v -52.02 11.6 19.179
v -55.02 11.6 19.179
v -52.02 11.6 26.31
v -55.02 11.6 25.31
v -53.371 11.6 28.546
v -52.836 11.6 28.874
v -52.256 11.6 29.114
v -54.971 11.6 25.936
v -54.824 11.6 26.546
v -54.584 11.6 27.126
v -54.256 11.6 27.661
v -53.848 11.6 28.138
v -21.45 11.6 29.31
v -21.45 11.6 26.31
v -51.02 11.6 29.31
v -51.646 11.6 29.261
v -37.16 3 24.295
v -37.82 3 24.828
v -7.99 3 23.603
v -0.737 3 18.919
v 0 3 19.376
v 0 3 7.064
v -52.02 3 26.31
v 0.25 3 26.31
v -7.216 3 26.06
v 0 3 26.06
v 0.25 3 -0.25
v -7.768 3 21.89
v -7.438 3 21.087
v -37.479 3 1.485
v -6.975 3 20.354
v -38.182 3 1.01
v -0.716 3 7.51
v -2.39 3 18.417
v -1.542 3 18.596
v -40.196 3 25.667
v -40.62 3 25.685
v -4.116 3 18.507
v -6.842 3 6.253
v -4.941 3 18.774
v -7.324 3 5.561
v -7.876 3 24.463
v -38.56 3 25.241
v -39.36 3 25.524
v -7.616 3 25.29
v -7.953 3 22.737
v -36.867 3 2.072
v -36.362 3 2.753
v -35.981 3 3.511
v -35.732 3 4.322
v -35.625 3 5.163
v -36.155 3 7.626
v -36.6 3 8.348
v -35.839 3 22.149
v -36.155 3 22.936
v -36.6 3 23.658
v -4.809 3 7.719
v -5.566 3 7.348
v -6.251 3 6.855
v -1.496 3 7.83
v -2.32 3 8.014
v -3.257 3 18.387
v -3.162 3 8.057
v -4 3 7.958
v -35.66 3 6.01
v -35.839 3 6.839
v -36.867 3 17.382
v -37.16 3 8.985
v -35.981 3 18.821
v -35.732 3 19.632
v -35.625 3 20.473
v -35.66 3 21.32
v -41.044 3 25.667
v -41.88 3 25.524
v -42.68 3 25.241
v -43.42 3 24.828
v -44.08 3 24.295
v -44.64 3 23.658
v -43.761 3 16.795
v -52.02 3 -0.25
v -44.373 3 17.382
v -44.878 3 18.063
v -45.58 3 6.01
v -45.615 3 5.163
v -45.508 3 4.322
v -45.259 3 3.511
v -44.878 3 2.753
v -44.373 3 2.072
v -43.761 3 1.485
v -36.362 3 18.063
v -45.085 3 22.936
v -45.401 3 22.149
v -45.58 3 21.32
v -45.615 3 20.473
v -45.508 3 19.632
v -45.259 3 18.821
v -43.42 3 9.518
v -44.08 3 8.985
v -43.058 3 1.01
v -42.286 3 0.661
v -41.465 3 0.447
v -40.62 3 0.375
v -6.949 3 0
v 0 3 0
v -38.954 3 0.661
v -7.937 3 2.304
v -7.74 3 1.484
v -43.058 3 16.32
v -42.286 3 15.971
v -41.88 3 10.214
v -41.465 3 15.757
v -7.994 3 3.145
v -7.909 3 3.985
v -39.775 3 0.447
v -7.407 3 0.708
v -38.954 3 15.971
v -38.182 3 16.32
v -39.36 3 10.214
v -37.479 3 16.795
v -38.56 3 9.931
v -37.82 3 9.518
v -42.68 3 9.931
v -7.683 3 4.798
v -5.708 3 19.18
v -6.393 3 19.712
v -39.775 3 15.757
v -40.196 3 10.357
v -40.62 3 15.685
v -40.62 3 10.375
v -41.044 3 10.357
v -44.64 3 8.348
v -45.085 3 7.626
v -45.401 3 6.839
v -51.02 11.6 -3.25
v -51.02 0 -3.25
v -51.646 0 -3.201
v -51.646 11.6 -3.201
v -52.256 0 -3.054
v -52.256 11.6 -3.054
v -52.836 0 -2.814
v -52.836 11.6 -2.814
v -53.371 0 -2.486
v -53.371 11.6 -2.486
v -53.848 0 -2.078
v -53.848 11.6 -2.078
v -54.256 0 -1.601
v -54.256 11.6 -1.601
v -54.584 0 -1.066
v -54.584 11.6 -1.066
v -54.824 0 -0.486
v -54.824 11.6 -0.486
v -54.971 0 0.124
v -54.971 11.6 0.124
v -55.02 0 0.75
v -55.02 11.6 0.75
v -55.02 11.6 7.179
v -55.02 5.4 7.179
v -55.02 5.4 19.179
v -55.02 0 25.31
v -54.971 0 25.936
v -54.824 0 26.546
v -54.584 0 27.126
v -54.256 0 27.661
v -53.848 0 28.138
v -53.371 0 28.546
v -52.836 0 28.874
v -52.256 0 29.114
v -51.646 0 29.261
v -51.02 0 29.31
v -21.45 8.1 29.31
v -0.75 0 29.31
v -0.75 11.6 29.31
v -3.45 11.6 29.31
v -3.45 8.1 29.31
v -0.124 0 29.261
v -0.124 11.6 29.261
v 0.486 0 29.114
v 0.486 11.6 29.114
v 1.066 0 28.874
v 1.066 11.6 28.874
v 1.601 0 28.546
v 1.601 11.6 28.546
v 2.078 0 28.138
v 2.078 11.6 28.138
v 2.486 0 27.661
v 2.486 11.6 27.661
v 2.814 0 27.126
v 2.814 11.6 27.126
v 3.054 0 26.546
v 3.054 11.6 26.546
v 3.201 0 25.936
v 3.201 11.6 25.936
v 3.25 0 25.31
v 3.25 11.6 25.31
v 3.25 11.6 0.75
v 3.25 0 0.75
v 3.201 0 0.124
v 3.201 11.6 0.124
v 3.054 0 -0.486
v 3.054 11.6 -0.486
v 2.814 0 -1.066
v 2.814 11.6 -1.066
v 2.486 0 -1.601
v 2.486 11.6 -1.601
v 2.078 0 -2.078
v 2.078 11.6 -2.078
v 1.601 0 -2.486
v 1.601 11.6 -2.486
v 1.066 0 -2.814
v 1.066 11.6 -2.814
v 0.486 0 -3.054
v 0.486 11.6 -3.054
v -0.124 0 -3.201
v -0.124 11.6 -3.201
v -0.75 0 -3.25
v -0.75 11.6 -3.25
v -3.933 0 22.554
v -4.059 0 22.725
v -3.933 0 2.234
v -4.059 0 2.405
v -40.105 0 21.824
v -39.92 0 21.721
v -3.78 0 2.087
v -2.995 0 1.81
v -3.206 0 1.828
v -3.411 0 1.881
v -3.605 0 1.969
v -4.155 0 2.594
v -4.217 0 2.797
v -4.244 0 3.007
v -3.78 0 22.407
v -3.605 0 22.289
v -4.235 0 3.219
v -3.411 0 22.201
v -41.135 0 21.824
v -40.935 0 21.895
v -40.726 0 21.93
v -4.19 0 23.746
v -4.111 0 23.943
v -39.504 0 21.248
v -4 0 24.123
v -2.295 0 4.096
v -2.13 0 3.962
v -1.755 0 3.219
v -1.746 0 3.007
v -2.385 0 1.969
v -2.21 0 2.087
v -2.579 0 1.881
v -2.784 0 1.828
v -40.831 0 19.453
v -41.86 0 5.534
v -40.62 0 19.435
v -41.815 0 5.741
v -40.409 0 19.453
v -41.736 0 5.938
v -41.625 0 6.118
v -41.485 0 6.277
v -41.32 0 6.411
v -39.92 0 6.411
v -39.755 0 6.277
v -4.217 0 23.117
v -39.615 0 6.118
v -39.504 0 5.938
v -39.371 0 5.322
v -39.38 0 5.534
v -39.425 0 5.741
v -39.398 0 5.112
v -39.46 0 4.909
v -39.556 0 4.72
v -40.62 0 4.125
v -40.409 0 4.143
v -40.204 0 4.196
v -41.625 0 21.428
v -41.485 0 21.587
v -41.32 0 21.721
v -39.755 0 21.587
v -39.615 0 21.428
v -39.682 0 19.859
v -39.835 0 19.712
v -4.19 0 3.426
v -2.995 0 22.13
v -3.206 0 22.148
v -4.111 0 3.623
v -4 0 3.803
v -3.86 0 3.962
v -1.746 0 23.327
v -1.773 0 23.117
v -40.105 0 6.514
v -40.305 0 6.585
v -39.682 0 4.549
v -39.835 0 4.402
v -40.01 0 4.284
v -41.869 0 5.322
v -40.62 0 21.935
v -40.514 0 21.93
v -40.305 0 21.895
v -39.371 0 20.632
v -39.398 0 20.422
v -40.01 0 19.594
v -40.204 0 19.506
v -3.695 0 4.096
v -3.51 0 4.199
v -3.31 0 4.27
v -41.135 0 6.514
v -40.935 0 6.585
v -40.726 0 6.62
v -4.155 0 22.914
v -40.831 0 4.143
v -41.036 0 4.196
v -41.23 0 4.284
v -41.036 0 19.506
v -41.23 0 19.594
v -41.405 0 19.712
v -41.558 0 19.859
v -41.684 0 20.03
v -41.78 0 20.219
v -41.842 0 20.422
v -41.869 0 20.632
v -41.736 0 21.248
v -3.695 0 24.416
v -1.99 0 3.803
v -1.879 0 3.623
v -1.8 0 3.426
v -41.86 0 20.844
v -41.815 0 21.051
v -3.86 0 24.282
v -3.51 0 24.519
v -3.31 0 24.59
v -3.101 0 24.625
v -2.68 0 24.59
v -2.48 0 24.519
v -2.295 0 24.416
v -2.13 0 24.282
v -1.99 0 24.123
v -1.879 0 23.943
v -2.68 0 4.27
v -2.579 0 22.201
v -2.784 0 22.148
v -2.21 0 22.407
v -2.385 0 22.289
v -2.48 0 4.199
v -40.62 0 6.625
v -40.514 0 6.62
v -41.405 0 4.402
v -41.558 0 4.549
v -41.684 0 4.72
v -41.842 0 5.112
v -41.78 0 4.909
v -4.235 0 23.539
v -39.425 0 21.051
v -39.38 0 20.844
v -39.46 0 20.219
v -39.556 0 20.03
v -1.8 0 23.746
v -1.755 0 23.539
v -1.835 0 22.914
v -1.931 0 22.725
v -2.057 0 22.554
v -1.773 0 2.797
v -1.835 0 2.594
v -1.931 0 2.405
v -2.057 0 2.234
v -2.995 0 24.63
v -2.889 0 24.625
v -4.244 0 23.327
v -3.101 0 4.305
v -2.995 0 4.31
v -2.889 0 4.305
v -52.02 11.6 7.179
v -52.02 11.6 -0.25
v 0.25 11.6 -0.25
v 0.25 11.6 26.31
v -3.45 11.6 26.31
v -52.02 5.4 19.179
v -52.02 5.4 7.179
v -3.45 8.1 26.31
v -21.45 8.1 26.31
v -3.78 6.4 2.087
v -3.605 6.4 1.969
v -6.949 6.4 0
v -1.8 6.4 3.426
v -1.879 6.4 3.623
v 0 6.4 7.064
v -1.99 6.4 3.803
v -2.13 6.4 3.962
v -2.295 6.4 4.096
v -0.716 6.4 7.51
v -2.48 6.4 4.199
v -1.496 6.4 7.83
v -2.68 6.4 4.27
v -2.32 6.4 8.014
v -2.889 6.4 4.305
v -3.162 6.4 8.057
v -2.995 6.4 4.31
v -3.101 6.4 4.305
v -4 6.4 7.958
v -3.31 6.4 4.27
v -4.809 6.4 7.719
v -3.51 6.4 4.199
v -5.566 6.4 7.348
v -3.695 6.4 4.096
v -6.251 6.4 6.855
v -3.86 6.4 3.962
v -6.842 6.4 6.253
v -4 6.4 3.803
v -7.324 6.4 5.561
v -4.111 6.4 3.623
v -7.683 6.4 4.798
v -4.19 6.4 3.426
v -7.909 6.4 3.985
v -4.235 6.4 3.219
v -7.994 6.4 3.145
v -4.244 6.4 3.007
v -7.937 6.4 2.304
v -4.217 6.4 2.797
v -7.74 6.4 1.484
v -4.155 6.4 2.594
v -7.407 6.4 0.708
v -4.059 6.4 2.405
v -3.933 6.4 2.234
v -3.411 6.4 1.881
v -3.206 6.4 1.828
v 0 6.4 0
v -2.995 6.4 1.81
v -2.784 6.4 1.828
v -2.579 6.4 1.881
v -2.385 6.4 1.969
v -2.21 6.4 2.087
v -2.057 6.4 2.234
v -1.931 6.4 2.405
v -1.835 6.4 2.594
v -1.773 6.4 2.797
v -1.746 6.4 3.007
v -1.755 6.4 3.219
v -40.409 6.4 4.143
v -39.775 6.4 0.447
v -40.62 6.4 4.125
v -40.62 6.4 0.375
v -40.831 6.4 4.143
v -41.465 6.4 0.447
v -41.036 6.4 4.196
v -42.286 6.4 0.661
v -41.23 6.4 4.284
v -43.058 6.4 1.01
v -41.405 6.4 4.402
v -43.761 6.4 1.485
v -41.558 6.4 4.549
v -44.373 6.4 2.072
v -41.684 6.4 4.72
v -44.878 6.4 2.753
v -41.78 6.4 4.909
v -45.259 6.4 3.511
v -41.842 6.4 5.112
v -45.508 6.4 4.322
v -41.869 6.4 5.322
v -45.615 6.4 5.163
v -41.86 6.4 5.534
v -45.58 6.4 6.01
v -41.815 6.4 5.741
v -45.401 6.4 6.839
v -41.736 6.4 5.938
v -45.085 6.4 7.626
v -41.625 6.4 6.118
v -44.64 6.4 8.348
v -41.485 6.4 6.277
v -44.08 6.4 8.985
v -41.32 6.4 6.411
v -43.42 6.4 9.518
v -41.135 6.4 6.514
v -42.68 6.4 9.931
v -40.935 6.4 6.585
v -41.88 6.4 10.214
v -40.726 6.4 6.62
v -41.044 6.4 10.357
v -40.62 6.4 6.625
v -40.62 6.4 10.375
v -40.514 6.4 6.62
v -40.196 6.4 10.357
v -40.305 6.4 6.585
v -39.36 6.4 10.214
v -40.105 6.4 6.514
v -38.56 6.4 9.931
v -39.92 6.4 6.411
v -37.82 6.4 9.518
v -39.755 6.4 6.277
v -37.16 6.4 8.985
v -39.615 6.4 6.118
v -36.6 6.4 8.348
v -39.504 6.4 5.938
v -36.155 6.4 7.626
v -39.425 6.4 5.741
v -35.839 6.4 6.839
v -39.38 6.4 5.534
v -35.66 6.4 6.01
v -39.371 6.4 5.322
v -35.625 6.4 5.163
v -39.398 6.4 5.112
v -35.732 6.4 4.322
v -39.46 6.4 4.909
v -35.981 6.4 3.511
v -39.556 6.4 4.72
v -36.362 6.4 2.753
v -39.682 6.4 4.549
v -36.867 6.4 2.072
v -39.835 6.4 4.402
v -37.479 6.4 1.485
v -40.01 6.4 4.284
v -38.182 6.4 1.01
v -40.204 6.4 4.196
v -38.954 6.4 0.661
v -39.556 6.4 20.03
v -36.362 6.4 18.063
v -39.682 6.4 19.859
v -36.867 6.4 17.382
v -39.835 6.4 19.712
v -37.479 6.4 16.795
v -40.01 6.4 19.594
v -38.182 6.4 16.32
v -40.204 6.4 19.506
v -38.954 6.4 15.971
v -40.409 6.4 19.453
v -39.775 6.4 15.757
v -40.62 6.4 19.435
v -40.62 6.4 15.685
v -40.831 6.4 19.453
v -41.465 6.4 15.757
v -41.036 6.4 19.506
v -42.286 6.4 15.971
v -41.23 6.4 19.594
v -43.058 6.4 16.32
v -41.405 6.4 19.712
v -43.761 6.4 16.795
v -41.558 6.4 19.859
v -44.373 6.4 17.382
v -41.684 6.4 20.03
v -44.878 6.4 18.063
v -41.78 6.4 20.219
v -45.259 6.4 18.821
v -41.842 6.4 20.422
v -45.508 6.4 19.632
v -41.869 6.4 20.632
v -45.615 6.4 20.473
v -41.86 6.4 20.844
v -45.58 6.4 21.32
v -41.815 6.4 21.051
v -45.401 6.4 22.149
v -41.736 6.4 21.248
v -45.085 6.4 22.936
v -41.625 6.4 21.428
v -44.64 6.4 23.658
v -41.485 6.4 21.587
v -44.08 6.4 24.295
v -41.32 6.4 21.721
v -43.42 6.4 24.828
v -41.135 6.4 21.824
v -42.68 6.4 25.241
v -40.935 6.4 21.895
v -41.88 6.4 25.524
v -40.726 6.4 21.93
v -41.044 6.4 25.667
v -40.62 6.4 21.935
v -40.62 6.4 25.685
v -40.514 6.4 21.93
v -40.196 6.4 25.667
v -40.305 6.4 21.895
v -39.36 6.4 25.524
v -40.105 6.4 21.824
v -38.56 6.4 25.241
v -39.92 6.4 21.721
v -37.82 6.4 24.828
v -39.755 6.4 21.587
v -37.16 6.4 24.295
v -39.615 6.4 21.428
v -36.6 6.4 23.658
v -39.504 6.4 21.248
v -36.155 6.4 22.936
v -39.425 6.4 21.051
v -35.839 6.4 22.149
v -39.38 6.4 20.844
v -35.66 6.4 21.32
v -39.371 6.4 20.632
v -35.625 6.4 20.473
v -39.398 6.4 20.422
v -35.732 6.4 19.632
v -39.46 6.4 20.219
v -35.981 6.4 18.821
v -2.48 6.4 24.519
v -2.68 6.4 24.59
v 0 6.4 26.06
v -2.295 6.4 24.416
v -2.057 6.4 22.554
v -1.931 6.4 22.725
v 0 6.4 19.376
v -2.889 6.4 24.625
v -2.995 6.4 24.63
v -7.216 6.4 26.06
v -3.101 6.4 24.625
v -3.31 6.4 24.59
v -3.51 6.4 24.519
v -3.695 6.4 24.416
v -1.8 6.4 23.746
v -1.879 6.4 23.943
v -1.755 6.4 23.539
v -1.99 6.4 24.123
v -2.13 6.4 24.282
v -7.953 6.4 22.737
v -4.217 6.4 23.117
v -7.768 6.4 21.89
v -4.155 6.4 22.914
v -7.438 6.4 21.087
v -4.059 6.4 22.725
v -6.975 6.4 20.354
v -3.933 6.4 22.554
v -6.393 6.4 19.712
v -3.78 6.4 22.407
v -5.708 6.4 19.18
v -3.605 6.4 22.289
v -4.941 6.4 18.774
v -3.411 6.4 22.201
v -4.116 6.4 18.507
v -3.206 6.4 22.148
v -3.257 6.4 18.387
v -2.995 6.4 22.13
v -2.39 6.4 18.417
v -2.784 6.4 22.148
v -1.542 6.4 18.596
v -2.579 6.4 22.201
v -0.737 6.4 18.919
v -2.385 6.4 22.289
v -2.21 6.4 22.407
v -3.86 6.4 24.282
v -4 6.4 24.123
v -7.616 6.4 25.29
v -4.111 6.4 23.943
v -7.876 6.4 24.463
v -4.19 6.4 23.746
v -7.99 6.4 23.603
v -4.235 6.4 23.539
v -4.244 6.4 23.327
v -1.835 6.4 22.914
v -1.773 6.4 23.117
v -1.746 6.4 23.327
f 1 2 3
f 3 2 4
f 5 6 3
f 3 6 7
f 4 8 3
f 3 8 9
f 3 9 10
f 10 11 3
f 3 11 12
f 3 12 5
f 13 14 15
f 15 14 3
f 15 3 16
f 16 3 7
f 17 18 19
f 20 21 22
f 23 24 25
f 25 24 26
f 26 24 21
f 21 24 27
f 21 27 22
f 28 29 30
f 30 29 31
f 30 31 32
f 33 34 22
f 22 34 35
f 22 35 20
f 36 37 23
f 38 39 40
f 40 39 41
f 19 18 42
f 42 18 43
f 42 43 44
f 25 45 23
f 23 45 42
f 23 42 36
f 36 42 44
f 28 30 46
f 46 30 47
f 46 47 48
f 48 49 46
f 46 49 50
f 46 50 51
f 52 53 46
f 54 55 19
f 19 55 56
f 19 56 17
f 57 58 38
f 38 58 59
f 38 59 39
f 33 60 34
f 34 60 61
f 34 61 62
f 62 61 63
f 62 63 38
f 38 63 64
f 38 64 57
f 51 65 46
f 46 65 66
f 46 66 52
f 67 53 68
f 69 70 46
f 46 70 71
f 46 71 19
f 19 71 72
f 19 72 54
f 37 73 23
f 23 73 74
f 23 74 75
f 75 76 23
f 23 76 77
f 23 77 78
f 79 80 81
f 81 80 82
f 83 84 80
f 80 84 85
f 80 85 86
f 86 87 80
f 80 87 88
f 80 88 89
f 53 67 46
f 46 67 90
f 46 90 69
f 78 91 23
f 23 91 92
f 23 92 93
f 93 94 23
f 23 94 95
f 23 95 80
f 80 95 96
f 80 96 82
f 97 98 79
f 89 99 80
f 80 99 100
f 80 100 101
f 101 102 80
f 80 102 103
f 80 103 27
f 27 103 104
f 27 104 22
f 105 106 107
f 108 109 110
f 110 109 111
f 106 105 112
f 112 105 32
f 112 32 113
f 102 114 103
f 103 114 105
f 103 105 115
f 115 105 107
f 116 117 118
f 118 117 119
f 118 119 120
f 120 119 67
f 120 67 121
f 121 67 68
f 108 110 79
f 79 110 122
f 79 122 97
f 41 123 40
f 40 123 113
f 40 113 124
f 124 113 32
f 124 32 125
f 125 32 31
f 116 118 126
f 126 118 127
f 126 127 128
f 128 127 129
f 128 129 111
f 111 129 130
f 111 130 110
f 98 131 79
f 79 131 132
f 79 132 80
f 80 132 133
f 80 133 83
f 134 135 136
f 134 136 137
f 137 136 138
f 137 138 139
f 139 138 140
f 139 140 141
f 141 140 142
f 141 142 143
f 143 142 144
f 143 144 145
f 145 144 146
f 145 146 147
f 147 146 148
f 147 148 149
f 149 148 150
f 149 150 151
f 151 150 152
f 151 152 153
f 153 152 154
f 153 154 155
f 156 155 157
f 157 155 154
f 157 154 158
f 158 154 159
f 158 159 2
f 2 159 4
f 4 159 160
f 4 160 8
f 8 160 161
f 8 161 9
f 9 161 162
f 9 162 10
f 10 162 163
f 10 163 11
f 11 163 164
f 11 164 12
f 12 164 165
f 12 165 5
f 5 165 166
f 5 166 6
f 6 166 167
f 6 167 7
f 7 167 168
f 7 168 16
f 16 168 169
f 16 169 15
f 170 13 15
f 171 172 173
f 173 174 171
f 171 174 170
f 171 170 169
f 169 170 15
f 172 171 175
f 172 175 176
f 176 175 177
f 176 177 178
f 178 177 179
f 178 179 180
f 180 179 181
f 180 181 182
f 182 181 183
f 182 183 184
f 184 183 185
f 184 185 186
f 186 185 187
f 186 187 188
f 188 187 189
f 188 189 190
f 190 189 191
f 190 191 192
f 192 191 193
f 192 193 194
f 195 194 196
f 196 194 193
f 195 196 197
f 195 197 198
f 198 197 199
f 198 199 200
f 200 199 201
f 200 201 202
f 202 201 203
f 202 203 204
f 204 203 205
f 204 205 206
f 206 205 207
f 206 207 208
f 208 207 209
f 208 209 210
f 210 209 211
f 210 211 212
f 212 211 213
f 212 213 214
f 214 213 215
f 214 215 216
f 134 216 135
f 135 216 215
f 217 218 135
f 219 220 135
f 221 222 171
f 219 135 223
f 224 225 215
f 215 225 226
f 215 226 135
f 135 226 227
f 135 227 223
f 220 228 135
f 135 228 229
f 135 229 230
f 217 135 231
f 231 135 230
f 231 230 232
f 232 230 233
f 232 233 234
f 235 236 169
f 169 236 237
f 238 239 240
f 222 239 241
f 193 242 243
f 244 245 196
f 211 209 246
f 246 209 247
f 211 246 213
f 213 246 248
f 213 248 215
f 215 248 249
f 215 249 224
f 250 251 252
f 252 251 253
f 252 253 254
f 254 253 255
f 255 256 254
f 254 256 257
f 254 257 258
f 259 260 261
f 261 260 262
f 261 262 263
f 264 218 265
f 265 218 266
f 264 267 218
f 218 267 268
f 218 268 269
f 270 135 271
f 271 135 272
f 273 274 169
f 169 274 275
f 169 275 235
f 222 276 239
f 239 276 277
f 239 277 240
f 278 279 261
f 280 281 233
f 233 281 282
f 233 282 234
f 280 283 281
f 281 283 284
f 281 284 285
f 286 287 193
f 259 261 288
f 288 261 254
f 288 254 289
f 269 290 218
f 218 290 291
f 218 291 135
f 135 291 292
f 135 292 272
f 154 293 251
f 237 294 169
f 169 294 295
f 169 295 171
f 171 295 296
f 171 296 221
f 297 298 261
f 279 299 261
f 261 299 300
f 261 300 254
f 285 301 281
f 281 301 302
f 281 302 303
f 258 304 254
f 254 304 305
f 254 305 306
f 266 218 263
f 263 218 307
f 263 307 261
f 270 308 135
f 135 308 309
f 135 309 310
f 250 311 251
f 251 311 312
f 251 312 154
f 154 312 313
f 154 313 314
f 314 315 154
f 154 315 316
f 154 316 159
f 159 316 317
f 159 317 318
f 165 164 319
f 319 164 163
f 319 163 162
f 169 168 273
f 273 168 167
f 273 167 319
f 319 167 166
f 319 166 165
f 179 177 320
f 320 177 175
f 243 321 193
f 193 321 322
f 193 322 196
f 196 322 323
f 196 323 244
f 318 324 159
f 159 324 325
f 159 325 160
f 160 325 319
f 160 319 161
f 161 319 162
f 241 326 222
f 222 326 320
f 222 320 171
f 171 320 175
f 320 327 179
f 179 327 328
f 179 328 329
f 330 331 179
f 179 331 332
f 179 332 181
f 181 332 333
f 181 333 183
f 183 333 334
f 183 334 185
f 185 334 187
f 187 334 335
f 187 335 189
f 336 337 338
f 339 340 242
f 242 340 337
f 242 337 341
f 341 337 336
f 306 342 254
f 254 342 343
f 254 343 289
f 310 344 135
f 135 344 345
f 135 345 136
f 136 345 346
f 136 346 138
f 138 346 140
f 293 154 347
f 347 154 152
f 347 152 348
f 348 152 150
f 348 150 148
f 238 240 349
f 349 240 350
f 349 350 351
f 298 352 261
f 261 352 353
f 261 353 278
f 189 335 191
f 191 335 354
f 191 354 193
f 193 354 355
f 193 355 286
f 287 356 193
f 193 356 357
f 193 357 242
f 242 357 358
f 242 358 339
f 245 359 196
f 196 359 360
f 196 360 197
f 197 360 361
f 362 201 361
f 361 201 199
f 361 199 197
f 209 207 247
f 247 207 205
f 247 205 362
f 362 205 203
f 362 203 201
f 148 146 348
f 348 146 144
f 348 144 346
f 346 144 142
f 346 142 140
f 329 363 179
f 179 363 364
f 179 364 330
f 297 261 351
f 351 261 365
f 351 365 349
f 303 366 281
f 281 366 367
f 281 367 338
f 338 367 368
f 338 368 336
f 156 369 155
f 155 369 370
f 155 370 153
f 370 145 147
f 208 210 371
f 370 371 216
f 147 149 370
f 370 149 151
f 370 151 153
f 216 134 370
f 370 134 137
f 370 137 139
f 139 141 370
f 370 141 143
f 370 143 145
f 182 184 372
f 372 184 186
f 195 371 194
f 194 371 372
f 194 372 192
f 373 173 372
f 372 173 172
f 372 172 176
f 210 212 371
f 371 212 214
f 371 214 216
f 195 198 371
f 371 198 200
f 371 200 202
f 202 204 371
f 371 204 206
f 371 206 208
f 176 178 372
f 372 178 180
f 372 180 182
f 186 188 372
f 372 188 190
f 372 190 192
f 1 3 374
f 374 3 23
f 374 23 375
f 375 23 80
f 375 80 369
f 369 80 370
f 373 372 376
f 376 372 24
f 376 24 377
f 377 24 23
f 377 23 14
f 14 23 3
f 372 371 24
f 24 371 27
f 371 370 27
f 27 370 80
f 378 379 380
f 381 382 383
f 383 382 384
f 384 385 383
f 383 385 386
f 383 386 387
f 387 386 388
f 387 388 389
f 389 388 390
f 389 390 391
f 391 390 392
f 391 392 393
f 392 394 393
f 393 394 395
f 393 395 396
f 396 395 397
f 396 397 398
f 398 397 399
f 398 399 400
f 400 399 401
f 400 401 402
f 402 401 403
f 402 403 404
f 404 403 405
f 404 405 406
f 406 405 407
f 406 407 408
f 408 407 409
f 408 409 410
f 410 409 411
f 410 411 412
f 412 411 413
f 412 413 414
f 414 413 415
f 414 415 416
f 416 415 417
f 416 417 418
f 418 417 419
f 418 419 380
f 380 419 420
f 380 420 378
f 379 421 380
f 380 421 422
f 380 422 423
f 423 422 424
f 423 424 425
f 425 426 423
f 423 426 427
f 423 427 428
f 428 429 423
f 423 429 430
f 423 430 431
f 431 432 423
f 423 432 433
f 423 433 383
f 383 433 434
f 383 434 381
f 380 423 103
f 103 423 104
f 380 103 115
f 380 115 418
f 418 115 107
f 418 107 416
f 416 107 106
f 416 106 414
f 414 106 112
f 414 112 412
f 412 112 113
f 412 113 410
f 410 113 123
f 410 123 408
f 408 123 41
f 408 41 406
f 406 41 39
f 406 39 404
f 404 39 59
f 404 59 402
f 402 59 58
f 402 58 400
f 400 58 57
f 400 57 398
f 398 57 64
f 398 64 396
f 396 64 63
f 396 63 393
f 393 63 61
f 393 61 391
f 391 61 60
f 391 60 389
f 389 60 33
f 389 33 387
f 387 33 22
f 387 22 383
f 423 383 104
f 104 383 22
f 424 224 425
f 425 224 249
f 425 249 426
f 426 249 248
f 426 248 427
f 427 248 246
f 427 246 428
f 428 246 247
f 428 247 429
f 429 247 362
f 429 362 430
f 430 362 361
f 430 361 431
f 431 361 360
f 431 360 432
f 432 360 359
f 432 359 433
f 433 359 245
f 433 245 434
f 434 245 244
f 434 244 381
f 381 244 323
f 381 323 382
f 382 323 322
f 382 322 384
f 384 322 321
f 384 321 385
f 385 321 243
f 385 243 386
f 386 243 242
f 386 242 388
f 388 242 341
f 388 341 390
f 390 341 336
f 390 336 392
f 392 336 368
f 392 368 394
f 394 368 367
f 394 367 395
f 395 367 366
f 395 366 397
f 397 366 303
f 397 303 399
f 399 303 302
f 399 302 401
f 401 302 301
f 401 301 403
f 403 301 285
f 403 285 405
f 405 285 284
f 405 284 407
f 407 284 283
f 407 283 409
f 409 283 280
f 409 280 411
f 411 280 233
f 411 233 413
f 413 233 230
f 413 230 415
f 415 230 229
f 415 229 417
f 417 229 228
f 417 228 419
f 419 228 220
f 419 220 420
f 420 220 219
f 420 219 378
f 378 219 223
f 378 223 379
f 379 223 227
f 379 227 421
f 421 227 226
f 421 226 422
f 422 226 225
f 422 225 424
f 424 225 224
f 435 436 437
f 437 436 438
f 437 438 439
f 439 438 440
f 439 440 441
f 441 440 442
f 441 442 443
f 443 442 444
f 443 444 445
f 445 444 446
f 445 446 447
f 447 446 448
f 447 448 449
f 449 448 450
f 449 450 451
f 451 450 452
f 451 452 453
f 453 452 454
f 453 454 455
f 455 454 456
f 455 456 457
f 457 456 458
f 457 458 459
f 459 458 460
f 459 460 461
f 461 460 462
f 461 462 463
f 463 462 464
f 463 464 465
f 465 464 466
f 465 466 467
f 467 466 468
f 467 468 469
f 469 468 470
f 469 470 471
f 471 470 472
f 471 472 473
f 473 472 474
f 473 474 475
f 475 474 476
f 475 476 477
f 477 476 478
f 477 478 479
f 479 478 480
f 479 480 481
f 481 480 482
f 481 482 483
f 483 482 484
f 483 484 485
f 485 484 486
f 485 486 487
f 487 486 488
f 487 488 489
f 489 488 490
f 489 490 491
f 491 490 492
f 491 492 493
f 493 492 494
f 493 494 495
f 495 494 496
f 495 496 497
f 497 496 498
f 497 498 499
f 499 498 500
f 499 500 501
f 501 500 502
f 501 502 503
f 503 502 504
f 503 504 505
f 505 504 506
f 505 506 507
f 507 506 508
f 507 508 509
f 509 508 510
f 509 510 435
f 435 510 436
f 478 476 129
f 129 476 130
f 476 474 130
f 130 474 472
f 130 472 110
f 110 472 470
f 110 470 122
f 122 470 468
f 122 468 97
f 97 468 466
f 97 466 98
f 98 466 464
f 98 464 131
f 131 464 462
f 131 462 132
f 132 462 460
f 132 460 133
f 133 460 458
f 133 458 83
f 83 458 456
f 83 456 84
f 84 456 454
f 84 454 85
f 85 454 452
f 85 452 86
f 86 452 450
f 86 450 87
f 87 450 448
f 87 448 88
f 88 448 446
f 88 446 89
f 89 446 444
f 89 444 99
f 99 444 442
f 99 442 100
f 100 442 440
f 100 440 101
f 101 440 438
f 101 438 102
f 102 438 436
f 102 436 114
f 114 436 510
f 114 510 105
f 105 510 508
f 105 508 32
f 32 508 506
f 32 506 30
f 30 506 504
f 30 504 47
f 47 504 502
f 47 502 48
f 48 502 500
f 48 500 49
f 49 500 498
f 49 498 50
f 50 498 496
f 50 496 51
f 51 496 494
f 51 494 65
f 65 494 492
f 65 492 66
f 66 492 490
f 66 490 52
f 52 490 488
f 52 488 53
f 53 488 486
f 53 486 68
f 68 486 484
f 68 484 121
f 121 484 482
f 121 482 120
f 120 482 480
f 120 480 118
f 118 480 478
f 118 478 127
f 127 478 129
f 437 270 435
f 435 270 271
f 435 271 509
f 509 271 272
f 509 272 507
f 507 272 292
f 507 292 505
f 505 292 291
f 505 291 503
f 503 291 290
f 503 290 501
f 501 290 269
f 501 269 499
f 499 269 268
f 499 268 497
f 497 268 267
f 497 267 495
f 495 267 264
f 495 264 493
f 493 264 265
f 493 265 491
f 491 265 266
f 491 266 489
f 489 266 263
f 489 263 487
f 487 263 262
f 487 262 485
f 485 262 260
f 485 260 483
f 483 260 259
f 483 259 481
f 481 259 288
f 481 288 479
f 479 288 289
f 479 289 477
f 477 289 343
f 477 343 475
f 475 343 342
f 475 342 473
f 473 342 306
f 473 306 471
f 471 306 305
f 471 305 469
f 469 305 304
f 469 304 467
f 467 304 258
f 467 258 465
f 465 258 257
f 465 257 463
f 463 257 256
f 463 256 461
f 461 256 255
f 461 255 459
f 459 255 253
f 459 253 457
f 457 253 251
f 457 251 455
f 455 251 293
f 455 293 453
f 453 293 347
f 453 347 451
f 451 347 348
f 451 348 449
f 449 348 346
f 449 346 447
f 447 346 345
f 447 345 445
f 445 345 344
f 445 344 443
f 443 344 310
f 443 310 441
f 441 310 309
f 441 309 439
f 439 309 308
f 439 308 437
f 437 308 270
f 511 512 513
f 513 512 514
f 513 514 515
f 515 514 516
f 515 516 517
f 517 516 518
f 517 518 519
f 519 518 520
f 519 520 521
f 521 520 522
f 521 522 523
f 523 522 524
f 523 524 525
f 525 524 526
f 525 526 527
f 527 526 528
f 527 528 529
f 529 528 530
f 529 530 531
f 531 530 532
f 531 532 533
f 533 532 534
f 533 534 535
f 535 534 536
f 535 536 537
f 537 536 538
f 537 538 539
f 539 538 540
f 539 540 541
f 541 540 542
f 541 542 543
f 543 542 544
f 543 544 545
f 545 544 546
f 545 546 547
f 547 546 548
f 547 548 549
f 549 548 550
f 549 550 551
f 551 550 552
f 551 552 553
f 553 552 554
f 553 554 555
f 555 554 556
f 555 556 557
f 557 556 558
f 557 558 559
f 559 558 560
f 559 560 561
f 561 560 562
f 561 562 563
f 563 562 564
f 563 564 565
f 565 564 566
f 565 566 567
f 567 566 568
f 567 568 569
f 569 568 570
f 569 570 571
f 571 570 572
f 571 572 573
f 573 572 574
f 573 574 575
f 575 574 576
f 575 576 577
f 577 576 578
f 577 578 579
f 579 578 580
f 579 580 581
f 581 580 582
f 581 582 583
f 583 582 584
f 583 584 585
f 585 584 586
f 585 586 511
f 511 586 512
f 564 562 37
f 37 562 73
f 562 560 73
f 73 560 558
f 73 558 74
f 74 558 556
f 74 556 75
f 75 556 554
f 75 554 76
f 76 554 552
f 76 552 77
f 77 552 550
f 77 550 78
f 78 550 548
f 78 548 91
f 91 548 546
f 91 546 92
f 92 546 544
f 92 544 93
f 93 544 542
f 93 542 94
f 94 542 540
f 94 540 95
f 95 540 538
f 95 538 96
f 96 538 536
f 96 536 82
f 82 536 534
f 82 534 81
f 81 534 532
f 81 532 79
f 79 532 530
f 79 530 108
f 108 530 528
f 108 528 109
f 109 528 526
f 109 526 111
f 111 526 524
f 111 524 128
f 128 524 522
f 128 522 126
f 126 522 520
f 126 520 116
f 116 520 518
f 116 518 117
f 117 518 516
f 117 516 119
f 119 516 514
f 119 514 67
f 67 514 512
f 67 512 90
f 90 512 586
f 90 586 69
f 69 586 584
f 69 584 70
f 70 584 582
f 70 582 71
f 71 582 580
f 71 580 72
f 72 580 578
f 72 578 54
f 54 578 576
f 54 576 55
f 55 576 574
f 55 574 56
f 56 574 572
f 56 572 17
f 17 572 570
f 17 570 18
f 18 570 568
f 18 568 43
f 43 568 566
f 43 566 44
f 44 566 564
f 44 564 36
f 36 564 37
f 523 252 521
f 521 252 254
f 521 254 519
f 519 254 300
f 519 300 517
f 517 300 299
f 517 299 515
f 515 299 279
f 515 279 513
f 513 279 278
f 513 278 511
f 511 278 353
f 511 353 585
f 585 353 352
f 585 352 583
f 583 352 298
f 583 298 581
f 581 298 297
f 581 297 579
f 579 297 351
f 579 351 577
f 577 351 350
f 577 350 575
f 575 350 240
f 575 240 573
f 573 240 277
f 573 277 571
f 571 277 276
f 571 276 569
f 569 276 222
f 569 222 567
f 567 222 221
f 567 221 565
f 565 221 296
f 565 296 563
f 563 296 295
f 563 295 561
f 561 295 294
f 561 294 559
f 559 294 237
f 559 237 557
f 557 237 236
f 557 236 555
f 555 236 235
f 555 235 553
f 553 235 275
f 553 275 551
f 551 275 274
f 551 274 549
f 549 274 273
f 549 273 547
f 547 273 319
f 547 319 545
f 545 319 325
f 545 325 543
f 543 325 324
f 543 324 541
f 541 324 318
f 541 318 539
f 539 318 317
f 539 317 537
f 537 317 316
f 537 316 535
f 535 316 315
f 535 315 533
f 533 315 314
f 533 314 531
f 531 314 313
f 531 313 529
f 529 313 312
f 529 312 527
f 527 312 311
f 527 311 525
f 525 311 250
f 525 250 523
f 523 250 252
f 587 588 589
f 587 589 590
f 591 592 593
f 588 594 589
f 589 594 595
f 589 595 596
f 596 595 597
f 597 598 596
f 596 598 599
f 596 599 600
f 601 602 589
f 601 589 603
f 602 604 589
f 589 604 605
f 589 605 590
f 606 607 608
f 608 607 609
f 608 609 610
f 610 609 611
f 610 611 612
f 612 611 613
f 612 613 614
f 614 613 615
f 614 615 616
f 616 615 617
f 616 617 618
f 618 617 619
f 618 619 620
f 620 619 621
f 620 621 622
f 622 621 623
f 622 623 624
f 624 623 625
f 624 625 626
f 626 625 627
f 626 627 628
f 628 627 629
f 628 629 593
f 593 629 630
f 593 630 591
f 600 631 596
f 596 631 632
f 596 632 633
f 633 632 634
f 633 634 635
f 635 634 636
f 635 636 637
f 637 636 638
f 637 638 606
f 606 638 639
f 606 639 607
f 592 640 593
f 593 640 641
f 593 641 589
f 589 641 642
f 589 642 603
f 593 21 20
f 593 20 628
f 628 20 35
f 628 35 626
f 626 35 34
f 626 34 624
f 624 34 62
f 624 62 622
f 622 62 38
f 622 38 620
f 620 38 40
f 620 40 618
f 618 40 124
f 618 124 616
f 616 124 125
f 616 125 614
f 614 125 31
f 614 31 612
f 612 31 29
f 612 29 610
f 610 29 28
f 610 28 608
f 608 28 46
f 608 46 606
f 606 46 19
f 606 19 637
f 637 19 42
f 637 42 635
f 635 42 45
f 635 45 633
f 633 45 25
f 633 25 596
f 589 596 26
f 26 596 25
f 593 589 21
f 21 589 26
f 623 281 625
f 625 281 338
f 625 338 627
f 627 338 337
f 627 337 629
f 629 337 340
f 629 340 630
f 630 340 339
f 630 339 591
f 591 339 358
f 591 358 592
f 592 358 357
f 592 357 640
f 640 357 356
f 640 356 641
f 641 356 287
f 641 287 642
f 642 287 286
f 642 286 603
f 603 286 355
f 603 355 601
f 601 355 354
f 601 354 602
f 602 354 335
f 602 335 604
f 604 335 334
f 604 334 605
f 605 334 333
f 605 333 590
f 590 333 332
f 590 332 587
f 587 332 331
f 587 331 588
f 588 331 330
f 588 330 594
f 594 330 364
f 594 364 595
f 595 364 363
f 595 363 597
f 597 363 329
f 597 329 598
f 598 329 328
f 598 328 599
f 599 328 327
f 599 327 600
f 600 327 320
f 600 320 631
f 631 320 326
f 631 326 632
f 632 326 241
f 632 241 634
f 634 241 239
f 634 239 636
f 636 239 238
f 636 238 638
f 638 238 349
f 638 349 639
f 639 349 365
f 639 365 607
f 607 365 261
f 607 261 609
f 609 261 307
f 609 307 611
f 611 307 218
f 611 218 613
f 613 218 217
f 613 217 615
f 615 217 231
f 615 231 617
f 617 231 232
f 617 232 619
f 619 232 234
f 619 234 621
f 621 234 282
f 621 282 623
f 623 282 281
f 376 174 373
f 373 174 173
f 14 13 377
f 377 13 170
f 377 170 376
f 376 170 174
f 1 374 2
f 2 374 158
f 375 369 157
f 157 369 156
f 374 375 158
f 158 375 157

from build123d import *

# Parameters (mm, degrees)
BOSS_EXTRUDE1_DEPTH = 3
BOSS_EXTRUDE2_START = 3
SKETCH1_3_W         = 52.27
SKETCH1_3_H         = 26.56
BOSS_EXTRUDE2_DEPTH = 8.6
BOSS_EXTRUDE3_START = 3
SKETCH1_4_R         = 1.25
SKETCH1_4_R_2       = 5
BOSS_EXTRUDE3_DEPTH = 3.4
CUT_EXTRUDE1_REACH  = 65.526
SKETCH2_W           = 18
SKETCH2_H           = 3.5
CUT_EXTRUDE2_REACH  = 65.627
SKETCH4_W           = 12
SKETCH4_H           = 6.2
SKETCH1_5_R         = 1.25
CUT_EXTRUDE3_DEPTH  = 64.410066236


with BuildPart() as part:
    # Sketch1 → Boss-Extrude1 (new body)
    with BuildSketch(Plane(origin=(0, 0, 0), x_dir=(1, 0, 0), z_dir=(0, 1, 0))):
        with BuildLine():
            Line((-0.75, 3.25), (-51.02, 3.25))
            ThreePointArc((-51.02, 3.25), (-53.848427125, 2.078427125), (-55.02, -0.75))
            Line((-55.02, -0.75), (-55.02, -25.31))
            ThreePointArc((-55.02, -25.31), (-53.848427125, -28.138427125), (-51.02, -29.31))
            Line((-51.02, -29.31), (-0.75, -29.31))
            ThreePointArc((-0.75, -29.31), (2.078427125, -28.138427125), (3.25, -25.31))
            Line((3.25, -25.31), (3.25, -0.75))
            ThreePointArc((3.25, -0.75), (2.078427125, 2.078427125), (-0.75, 3.25))
        make_face()
    extrude(amount=BOSS_EXTRUDE1_DEPTH)

    # Sketch1<3> → Boss-Extrude2 (add)
    with BuildSketch(Plane(origin=(0, 0, 0), x_dir=(1, 0, 0), z_dir=(0, 1, 0)).offset(BOSS_EXTRUDE2_START)):
        with BuildLine():
            ThreePointArc((3.25, -0.75), (2.078427125, 2.078427125), (-0.75, 3.25))
            Line((-0.75, 3.25), (-51.02, 3.25))
            ThreePointArc((-51.02, 3.25), (-53.848427125, 2.078427125), (-55.02, -0.75))
            Line((-55.02, -0.75), (-55.02, -25.31))
            ThreePointArc((-55.02, -25.31), (-53.848427125, -28.138427125), (-51.02, -29.31))
            Line((-51.02, -29.31), (-0.75, -29.31))
            ThreePointArc((-0.75, -29.31), (2.078427125, -28.138427125), (3.25, -25.31))
            Line((3.25, -25.31), (3.25, -0.75))
        make_face()
        with Locations((-25.885, -13.03)):
            Rectangle(SKETCH1_3_W, SKETCH1_3_H, mode=Mode.SUBTRACT)
    extrude(amount=BOSS_EXTRUDE2_DEPTH)

    # Sketch1<4> → Boss-Extrude3 (add)
    # profile 1 of 4: a face of its own
    with BuildSketch(Plane(origin=(0, 0, 0), x_dir=(1, 0, 0), z_dir=(0, 1, 0)).offset(BOSS_EXTRUDE3_START)):
        with BuildLine():
            Line((0, 0), (-6.949288811, 0))
            ThreePointArc((-6.949288811, 0), (-6.559292713, -6.566539242), (0, -7.063745122))
            Line((0, -7.063745122), (0, 0))
        make_face()
        with Locations(Location((-2.995, -3.06, 0), (0, 0, 270))):
            Circle(SKETCH1_4_R, mode=Mode.SUBTRACT)
    # profile 2 of 4: a face of its own
    with BuildSketch(Plane(origin=(0, 0, 0), x_dir=(1, 0, 0), z_dir=(0, 1, 0)).offset(BOSS_EXTRUDE3_START)):
        with Locations(Location((-40.62, -5.375, 0), (0, 0, 270))):
            Circle(SKETCH1_4_R_2)
        with Locations(Location((-40.62, -5.375, 0), (0, 0, 270))):
            Circle(SKETCH1_4_R, mode=Mode.SUBTRACT)
    # profile 3 of 4: a face of its own
    with BuildSketch(Plane(origin=(0, 0, 0), x_dir=(1, 0, 0), z_dir=(0, 1, 0)).offset(BOSS_EXTRUDE3_START)):
        with Locations(Location((-40.62, -20.685, 0), (0, 0, 270))):
            Circle(SKETCH1_4_R_2)
        with Locations(Location((-40.62, -20.685, 0), (0, 0, 270))):
            Circle(SKETCH1_4_R, mode=Mode.SUBTRACT)
    # profile 4 of 4: a face of its own
    with BuildSketch(Plane(origin=(0, 0, 0), x_dir=(1, 0, 0), z_dir=(0, 1, 0)).offset(BOSS_EXTRUDE3_START)):
        with BuildLine():
            Line((0, -26.06), (0, -19.376254878))
            ThreePointArc((0, -19.376254878), (-6.392636874, -19.711749235), (-7.216089907, -26.06))
            Line((-7.216089907, -26.06), (0, -26.06))
        make_face()
        with Locations(Location((-2.995, -23.38, 0), (0, 0, 270))):
            Circle(SKETCH1_4_R, mode=Mode.SUBTRACT)
    extrude(amount=BOSS_EXTRUDE3_DEPTH)

    # Sketch2 → Cut-Extrude1 (cut, up to next)
    with BuildSketch(Plane(origin=(0, 0, 26.31), x_dir=(-1, 0, 0), z_dir=(0, 0, -1)), mode=Mode.PRIVATE) as cut_extrude1_sk1:
        with Locations((12.45, 9.85)):
            Rectangle(SKETCH2_W, SKETCH2_H)
    cut_extrude1_tool1 = extrude(cut_extrude1_sk1.sketch, amount=-CUT_EXTRUDE1_REACH, mode=Mode.PRIVATE) & part.part
    add(cut_extrude1_tool1.solids().sort_by_distance((-12.45, 9.85, 26.31))[0], mode=Mode.SUBTRACT)

    # Sketch4 → Cut-Extrude2 (cut, up to next)
    with BuildSketch(Plane(origin=(-52.02, 0, 0), x_dir=(0, 0, -1), z_dir=(1, 0, 0)), mode=Mode.PRIVATE) as cut_extrude2_sk1:
        with Locations((-13.17934126, 8.5)):
            Rectangle(SKETCH4_W, SKETCH4_H)
    cut_extrude2_tool1 = extrude(cut_extrude2_sk1.sketch, amount=-CUT_EXTRUDE2_REACH, mode=Mode.PRIVATE) & part.part
    add(cut_extrude2_tool1.solids().sort_by_distance((-52.02, 8.5, 13.179341))[0], mode=Mode.SUBTRACT)

    # Sketch1<5> → Cut-Extrude3 (cut, through all)
    with BuildSketch(Plane(origin=(0, 0, 0), x_dir=(1, 0, 0), z_dir=(0, 1, 0))):
        with Locations(Location((-2.995, -23.38, 0), (0, 0, 270))):
            Circle(SKETCH1_5_R)
        with Locations(Location((-2.995, -3.06, 0), (0, 0, 270))):
            Circle(SKETCH1_5_R)
        with Locations(Location((-40.62, -5.375, 0), (0, 0, 270))):
            Circle(SKETCH1_5_R)
        with Locations(Location((-40.62, -20.685, 0), (0, 0, 270))):
            Circle(SKETCH1_5_R)
    extrude(amount=CUT_EXTRUDE3_DEPTH, mode=Mode.SUBTRACT)


solid = part.part
